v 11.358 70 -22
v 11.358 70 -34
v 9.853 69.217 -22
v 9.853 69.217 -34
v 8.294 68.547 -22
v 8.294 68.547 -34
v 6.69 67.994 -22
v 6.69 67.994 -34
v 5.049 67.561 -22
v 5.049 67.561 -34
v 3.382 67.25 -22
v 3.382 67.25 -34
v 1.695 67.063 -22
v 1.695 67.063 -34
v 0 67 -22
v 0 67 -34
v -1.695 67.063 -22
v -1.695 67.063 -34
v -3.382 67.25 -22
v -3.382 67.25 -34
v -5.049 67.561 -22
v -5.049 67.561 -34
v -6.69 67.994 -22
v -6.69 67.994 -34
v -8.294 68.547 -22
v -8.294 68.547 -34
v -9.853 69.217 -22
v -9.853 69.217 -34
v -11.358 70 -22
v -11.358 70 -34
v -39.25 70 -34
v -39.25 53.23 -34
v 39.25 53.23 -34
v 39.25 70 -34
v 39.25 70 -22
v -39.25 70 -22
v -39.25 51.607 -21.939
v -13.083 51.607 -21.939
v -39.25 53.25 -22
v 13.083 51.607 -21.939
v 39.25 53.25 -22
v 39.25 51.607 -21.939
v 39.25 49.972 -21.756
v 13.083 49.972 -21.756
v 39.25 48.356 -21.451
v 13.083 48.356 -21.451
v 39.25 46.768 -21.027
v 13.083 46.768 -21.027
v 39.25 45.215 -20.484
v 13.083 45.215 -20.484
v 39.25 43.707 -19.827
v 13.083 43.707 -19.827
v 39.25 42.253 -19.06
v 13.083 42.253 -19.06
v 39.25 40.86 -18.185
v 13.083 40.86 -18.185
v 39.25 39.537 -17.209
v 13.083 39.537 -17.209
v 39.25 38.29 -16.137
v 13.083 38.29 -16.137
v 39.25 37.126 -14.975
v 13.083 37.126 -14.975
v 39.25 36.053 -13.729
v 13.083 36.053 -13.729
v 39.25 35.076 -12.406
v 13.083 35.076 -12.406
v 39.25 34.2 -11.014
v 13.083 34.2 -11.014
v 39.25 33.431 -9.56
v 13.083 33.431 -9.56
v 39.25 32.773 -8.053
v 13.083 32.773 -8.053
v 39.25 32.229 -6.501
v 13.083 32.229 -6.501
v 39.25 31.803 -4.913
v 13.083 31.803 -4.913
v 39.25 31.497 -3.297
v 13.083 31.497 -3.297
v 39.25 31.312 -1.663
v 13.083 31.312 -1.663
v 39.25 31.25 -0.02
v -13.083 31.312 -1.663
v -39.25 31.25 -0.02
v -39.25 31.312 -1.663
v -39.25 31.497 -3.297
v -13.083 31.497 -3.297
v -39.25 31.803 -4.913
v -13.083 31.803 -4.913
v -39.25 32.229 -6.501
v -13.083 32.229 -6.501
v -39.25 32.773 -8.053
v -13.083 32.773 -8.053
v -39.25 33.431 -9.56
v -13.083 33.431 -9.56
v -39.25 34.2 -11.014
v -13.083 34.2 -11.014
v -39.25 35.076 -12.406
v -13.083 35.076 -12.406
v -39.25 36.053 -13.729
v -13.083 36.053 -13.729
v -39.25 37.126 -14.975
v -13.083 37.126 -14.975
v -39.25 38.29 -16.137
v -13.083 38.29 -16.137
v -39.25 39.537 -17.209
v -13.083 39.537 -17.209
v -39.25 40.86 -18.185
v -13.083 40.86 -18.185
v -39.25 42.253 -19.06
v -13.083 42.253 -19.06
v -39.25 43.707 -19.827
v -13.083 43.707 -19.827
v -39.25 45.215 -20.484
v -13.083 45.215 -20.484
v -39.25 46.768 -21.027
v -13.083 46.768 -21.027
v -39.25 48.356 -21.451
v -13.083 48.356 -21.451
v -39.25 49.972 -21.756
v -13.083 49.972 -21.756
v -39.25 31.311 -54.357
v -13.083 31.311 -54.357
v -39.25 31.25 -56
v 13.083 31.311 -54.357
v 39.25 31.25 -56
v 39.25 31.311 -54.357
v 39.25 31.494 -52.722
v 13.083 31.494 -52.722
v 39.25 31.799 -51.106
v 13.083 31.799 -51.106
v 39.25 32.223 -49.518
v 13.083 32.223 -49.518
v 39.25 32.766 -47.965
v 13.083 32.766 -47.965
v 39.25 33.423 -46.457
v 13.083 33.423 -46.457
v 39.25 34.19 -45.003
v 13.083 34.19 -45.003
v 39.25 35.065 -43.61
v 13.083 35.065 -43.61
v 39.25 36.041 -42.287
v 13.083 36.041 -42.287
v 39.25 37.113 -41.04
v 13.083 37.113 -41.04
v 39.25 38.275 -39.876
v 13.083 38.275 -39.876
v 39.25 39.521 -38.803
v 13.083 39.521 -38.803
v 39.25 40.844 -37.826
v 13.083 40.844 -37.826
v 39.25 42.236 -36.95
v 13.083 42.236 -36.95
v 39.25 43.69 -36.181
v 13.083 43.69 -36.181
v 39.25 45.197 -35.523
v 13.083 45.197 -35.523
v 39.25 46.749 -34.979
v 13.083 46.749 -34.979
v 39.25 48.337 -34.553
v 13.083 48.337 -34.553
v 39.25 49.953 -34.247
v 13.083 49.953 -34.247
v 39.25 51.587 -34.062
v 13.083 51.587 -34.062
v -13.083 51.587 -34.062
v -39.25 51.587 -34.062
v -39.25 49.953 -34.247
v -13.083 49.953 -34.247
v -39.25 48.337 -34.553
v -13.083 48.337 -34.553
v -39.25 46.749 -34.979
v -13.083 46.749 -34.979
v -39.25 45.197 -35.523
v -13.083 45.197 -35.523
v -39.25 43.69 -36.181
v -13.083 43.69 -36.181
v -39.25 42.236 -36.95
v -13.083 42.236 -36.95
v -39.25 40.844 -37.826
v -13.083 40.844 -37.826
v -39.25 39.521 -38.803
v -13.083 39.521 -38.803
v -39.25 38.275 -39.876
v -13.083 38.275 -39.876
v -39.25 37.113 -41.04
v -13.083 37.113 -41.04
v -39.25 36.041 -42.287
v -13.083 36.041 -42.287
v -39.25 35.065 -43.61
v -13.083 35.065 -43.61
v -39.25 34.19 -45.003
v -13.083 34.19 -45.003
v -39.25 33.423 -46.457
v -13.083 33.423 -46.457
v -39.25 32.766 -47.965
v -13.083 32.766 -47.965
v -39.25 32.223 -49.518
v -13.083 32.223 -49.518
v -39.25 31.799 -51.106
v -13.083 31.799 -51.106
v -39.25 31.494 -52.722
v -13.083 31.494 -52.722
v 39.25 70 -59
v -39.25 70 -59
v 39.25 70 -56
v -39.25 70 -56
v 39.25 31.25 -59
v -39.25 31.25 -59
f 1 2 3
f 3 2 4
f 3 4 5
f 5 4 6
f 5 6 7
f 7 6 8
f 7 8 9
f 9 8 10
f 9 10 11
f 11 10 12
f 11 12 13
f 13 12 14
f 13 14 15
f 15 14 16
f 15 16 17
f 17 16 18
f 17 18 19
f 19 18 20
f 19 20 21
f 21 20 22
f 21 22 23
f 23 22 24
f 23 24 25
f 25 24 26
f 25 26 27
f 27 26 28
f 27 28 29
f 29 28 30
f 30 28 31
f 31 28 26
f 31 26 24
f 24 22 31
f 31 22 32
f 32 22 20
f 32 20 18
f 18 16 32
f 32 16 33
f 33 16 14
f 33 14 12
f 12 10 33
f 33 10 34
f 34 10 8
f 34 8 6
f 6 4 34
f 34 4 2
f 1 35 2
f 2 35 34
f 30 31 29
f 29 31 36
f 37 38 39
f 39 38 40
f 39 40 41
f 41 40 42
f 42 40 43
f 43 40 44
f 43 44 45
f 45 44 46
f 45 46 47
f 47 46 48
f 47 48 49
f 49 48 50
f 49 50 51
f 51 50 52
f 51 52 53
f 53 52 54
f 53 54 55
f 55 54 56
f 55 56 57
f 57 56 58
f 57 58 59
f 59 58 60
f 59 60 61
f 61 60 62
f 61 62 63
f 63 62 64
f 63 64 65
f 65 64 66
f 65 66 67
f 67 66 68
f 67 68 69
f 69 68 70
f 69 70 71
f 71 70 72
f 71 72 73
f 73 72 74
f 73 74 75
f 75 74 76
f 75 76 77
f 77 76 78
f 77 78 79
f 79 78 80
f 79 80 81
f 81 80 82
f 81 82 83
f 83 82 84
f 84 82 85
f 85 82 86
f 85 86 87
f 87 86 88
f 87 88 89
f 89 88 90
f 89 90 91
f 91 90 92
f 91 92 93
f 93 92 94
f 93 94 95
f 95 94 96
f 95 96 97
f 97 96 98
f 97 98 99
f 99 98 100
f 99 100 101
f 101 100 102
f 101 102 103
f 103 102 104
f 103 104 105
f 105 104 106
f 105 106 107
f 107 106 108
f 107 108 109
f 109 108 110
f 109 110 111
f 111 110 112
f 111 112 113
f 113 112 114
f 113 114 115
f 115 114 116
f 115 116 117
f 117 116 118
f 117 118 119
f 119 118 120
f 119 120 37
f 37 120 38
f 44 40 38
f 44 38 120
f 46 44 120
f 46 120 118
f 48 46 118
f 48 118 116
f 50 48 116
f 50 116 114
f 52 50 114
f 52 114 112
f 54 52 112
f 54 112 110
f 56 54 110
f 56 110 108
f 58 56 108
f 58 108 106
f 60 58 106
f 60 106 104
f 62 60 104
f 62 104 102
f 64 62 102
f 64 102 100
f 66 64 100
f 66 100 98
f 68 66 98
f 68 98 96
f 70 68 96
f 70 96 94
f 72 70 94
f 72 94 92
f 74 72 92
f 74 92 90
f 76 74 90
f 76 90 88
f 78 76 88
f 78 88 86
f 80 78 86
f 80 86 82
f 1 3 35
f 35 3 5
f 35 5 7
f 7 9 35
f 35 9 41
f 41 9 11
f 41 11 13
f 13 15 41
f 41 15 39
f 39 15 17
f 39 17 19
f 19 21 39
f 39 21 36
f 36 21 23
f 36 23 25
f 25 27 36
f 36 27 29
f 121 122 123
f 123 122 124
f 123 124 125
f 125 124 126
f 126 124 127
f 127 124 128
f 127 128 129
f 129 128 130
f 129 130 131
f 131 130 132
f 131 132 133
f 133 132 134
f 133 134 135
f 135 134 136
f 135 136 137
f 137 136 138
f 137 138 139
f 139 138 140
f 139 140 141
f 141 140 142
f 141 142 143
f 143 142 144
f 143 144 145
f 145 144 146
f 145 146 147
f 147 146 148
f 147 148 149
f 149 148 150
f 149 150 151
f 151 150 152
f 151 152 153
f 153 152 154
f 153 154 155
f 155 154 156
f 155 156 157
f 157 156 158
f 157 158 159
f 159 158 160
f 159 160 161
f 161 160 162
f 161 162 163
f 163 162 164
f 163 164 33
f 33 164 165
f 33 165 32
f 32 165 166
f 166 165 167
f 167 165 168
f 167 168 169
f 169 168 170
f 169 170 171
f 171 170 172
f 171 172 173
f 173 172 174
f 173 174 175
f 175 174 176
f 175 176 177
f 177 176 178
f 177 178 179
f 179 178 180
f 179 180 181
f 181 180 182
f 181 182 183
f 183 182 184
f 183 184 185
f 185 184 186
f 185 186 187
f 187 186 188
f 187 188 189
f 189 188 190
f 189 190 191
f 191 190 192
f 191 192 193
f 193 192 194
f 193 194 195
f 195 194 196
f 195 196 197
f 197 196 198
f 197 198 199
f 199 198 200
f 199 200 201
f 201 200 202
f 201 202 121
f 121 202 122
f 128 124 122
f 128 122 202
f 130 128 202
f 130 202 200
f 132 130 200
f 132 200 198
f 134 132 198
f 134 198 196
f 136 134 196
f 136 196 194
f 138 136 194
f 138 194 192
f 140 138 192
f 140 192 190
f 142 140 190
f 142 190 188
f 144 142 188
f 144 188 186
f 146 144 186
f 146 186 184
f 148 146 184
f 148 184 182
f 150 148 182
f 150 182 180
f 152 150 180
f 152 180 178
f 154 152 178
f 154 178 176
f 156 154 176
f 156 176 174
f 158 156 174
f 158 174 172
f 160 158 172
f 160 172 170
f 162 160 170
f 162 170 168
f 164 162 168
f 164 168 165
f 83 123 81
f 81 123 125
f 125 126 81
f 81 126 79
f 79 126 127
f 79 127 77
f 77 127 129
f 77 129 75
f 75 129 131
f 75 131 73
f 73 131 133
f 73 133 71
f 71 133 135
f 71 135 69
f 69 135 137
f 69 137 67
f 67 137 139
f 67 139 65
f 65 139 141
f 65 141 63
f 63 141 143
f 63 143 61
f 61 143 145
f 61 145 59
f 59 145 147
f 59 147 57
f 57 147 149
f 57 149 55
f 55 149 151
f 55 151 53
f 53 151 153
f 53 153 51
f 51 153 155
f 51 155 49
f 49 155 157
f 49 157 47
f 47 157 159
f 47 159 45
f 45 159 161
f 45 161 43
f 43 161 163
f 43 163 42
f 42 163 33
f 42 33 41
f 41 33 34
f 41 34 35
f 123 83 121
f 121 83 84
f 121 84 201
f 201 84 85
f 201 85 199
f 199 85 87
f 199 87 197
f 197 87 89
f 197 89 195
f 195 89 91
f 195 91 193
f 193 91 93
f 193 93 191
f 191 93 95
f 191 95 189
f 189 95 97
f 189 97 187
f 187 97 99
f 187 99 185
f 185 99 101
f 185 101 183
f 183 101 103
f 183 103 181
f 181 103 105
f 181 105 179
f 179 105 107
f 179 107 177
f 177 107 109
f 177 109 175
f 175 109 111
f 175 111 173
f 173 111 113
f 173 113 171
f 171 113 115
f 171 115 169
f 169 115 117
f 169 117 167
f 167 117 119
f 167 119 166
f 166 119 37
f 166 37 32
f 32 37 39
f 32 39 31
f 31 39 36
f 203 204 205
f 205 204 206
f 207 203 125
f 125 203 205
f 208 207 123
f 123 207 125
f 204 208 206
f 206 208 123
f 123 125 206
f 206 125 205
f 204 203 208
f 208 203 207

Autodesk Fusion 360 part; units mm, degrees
ref_plane "WorkPlane18" through (0, 0, -59) normal (0, 0, 1) x (1, 0, 0)
sketch "Sketch23" plane through (0, 0, -59) normal (0, 0, 1) x (1, 0, 0)
  line L0 (-39.25, 31.25) -> (39.25, 31.25)
  line L1 (39.25, 31.25) -> (39.25, 70)
  line L2 (39.25, 70) -> (-39.25, 70)
  line L3 (-39.25, 70) -> (-39.25, 31.25)
extrude "Extrude18" add sketch "Sketch23" along normal blind 3
ref_plane "WorkPlane19" through (-39.25, 0, 0) normal (1, 0, 0) x (0, 1, 0)
sketch "Sketch24" plane through (-39.25, 0, 0) normal (1, 0, 0) x (0, 0, -1)
  line L0 (56, 31.25) -> (34, 31.25)
  line L1 (34, 31.25) -> (34, 53.25)
  arc A0 (34, 53.25) -> (56, 31.25) centre (55.9875, 53.2375) ccw
extrude "Extrude19" add sketch "Sketch24" along normal blind 78.5
ref_plane "WorkPlane20" through (0, 0, -34) normal (0, 0, 1) x (1, 0, 0)
sketch "Sketch25" plane through (0, 0, -34) normal (0, 0, 1) x (1, 0, 0)
  line L0 (-39.25, 31.25) -> (39.25, 31.25)
  line L1 (39.25, 31.25) -> (39.25, 70)
  line L2 (39.25, 70) -> (-39.25, 70)
  line L3 (-39.25, 70) -> (-39.25, 31.25)
extrude "Extrude20" add sketch "Sketch25" along normal blind 12
ref_plane "WorkPlane21" through (-39.25, 0, 0) normal (1, 0, 0) x (0, 1, 0)
sketch "Sketch26" plane through (-39.25, 0, 0) normal (1, 0, 0) x (0, 0, -1)
  line L0 (0, 31.25) -> (22, 31.25)
  line L1 (22, 31.25) -> (22, 53.25)
  arc A0 (0, 31.25) -> (22, 53.25) centre (0.0125, 53.2375) ccw
extrude "Extrude21" add sketch "Sketch26" along normal blind 78.5
ref_plane "WorkPlane22" through (0, 0, -34) normal (0, 0, 1) x (1, 0, 0)
sketch "Sketch27" plane through (0, 0, -34) normal (0, 0, 1) x (1, 0, 0)
  arc A0 (-11.3578, 70) -> (11.3578, 70) centre (0, 90) ccw
  line L0 (11.3578, 70) -> (11.3578, 73)
  line L1 (11.3578, 73) -> (-11.3578, 73)
  line L2 (-11.3578, 73) -> (-11.3578, 70)
extrude "Extrude22" cut sketch "Sketch27" along normal blind 12
